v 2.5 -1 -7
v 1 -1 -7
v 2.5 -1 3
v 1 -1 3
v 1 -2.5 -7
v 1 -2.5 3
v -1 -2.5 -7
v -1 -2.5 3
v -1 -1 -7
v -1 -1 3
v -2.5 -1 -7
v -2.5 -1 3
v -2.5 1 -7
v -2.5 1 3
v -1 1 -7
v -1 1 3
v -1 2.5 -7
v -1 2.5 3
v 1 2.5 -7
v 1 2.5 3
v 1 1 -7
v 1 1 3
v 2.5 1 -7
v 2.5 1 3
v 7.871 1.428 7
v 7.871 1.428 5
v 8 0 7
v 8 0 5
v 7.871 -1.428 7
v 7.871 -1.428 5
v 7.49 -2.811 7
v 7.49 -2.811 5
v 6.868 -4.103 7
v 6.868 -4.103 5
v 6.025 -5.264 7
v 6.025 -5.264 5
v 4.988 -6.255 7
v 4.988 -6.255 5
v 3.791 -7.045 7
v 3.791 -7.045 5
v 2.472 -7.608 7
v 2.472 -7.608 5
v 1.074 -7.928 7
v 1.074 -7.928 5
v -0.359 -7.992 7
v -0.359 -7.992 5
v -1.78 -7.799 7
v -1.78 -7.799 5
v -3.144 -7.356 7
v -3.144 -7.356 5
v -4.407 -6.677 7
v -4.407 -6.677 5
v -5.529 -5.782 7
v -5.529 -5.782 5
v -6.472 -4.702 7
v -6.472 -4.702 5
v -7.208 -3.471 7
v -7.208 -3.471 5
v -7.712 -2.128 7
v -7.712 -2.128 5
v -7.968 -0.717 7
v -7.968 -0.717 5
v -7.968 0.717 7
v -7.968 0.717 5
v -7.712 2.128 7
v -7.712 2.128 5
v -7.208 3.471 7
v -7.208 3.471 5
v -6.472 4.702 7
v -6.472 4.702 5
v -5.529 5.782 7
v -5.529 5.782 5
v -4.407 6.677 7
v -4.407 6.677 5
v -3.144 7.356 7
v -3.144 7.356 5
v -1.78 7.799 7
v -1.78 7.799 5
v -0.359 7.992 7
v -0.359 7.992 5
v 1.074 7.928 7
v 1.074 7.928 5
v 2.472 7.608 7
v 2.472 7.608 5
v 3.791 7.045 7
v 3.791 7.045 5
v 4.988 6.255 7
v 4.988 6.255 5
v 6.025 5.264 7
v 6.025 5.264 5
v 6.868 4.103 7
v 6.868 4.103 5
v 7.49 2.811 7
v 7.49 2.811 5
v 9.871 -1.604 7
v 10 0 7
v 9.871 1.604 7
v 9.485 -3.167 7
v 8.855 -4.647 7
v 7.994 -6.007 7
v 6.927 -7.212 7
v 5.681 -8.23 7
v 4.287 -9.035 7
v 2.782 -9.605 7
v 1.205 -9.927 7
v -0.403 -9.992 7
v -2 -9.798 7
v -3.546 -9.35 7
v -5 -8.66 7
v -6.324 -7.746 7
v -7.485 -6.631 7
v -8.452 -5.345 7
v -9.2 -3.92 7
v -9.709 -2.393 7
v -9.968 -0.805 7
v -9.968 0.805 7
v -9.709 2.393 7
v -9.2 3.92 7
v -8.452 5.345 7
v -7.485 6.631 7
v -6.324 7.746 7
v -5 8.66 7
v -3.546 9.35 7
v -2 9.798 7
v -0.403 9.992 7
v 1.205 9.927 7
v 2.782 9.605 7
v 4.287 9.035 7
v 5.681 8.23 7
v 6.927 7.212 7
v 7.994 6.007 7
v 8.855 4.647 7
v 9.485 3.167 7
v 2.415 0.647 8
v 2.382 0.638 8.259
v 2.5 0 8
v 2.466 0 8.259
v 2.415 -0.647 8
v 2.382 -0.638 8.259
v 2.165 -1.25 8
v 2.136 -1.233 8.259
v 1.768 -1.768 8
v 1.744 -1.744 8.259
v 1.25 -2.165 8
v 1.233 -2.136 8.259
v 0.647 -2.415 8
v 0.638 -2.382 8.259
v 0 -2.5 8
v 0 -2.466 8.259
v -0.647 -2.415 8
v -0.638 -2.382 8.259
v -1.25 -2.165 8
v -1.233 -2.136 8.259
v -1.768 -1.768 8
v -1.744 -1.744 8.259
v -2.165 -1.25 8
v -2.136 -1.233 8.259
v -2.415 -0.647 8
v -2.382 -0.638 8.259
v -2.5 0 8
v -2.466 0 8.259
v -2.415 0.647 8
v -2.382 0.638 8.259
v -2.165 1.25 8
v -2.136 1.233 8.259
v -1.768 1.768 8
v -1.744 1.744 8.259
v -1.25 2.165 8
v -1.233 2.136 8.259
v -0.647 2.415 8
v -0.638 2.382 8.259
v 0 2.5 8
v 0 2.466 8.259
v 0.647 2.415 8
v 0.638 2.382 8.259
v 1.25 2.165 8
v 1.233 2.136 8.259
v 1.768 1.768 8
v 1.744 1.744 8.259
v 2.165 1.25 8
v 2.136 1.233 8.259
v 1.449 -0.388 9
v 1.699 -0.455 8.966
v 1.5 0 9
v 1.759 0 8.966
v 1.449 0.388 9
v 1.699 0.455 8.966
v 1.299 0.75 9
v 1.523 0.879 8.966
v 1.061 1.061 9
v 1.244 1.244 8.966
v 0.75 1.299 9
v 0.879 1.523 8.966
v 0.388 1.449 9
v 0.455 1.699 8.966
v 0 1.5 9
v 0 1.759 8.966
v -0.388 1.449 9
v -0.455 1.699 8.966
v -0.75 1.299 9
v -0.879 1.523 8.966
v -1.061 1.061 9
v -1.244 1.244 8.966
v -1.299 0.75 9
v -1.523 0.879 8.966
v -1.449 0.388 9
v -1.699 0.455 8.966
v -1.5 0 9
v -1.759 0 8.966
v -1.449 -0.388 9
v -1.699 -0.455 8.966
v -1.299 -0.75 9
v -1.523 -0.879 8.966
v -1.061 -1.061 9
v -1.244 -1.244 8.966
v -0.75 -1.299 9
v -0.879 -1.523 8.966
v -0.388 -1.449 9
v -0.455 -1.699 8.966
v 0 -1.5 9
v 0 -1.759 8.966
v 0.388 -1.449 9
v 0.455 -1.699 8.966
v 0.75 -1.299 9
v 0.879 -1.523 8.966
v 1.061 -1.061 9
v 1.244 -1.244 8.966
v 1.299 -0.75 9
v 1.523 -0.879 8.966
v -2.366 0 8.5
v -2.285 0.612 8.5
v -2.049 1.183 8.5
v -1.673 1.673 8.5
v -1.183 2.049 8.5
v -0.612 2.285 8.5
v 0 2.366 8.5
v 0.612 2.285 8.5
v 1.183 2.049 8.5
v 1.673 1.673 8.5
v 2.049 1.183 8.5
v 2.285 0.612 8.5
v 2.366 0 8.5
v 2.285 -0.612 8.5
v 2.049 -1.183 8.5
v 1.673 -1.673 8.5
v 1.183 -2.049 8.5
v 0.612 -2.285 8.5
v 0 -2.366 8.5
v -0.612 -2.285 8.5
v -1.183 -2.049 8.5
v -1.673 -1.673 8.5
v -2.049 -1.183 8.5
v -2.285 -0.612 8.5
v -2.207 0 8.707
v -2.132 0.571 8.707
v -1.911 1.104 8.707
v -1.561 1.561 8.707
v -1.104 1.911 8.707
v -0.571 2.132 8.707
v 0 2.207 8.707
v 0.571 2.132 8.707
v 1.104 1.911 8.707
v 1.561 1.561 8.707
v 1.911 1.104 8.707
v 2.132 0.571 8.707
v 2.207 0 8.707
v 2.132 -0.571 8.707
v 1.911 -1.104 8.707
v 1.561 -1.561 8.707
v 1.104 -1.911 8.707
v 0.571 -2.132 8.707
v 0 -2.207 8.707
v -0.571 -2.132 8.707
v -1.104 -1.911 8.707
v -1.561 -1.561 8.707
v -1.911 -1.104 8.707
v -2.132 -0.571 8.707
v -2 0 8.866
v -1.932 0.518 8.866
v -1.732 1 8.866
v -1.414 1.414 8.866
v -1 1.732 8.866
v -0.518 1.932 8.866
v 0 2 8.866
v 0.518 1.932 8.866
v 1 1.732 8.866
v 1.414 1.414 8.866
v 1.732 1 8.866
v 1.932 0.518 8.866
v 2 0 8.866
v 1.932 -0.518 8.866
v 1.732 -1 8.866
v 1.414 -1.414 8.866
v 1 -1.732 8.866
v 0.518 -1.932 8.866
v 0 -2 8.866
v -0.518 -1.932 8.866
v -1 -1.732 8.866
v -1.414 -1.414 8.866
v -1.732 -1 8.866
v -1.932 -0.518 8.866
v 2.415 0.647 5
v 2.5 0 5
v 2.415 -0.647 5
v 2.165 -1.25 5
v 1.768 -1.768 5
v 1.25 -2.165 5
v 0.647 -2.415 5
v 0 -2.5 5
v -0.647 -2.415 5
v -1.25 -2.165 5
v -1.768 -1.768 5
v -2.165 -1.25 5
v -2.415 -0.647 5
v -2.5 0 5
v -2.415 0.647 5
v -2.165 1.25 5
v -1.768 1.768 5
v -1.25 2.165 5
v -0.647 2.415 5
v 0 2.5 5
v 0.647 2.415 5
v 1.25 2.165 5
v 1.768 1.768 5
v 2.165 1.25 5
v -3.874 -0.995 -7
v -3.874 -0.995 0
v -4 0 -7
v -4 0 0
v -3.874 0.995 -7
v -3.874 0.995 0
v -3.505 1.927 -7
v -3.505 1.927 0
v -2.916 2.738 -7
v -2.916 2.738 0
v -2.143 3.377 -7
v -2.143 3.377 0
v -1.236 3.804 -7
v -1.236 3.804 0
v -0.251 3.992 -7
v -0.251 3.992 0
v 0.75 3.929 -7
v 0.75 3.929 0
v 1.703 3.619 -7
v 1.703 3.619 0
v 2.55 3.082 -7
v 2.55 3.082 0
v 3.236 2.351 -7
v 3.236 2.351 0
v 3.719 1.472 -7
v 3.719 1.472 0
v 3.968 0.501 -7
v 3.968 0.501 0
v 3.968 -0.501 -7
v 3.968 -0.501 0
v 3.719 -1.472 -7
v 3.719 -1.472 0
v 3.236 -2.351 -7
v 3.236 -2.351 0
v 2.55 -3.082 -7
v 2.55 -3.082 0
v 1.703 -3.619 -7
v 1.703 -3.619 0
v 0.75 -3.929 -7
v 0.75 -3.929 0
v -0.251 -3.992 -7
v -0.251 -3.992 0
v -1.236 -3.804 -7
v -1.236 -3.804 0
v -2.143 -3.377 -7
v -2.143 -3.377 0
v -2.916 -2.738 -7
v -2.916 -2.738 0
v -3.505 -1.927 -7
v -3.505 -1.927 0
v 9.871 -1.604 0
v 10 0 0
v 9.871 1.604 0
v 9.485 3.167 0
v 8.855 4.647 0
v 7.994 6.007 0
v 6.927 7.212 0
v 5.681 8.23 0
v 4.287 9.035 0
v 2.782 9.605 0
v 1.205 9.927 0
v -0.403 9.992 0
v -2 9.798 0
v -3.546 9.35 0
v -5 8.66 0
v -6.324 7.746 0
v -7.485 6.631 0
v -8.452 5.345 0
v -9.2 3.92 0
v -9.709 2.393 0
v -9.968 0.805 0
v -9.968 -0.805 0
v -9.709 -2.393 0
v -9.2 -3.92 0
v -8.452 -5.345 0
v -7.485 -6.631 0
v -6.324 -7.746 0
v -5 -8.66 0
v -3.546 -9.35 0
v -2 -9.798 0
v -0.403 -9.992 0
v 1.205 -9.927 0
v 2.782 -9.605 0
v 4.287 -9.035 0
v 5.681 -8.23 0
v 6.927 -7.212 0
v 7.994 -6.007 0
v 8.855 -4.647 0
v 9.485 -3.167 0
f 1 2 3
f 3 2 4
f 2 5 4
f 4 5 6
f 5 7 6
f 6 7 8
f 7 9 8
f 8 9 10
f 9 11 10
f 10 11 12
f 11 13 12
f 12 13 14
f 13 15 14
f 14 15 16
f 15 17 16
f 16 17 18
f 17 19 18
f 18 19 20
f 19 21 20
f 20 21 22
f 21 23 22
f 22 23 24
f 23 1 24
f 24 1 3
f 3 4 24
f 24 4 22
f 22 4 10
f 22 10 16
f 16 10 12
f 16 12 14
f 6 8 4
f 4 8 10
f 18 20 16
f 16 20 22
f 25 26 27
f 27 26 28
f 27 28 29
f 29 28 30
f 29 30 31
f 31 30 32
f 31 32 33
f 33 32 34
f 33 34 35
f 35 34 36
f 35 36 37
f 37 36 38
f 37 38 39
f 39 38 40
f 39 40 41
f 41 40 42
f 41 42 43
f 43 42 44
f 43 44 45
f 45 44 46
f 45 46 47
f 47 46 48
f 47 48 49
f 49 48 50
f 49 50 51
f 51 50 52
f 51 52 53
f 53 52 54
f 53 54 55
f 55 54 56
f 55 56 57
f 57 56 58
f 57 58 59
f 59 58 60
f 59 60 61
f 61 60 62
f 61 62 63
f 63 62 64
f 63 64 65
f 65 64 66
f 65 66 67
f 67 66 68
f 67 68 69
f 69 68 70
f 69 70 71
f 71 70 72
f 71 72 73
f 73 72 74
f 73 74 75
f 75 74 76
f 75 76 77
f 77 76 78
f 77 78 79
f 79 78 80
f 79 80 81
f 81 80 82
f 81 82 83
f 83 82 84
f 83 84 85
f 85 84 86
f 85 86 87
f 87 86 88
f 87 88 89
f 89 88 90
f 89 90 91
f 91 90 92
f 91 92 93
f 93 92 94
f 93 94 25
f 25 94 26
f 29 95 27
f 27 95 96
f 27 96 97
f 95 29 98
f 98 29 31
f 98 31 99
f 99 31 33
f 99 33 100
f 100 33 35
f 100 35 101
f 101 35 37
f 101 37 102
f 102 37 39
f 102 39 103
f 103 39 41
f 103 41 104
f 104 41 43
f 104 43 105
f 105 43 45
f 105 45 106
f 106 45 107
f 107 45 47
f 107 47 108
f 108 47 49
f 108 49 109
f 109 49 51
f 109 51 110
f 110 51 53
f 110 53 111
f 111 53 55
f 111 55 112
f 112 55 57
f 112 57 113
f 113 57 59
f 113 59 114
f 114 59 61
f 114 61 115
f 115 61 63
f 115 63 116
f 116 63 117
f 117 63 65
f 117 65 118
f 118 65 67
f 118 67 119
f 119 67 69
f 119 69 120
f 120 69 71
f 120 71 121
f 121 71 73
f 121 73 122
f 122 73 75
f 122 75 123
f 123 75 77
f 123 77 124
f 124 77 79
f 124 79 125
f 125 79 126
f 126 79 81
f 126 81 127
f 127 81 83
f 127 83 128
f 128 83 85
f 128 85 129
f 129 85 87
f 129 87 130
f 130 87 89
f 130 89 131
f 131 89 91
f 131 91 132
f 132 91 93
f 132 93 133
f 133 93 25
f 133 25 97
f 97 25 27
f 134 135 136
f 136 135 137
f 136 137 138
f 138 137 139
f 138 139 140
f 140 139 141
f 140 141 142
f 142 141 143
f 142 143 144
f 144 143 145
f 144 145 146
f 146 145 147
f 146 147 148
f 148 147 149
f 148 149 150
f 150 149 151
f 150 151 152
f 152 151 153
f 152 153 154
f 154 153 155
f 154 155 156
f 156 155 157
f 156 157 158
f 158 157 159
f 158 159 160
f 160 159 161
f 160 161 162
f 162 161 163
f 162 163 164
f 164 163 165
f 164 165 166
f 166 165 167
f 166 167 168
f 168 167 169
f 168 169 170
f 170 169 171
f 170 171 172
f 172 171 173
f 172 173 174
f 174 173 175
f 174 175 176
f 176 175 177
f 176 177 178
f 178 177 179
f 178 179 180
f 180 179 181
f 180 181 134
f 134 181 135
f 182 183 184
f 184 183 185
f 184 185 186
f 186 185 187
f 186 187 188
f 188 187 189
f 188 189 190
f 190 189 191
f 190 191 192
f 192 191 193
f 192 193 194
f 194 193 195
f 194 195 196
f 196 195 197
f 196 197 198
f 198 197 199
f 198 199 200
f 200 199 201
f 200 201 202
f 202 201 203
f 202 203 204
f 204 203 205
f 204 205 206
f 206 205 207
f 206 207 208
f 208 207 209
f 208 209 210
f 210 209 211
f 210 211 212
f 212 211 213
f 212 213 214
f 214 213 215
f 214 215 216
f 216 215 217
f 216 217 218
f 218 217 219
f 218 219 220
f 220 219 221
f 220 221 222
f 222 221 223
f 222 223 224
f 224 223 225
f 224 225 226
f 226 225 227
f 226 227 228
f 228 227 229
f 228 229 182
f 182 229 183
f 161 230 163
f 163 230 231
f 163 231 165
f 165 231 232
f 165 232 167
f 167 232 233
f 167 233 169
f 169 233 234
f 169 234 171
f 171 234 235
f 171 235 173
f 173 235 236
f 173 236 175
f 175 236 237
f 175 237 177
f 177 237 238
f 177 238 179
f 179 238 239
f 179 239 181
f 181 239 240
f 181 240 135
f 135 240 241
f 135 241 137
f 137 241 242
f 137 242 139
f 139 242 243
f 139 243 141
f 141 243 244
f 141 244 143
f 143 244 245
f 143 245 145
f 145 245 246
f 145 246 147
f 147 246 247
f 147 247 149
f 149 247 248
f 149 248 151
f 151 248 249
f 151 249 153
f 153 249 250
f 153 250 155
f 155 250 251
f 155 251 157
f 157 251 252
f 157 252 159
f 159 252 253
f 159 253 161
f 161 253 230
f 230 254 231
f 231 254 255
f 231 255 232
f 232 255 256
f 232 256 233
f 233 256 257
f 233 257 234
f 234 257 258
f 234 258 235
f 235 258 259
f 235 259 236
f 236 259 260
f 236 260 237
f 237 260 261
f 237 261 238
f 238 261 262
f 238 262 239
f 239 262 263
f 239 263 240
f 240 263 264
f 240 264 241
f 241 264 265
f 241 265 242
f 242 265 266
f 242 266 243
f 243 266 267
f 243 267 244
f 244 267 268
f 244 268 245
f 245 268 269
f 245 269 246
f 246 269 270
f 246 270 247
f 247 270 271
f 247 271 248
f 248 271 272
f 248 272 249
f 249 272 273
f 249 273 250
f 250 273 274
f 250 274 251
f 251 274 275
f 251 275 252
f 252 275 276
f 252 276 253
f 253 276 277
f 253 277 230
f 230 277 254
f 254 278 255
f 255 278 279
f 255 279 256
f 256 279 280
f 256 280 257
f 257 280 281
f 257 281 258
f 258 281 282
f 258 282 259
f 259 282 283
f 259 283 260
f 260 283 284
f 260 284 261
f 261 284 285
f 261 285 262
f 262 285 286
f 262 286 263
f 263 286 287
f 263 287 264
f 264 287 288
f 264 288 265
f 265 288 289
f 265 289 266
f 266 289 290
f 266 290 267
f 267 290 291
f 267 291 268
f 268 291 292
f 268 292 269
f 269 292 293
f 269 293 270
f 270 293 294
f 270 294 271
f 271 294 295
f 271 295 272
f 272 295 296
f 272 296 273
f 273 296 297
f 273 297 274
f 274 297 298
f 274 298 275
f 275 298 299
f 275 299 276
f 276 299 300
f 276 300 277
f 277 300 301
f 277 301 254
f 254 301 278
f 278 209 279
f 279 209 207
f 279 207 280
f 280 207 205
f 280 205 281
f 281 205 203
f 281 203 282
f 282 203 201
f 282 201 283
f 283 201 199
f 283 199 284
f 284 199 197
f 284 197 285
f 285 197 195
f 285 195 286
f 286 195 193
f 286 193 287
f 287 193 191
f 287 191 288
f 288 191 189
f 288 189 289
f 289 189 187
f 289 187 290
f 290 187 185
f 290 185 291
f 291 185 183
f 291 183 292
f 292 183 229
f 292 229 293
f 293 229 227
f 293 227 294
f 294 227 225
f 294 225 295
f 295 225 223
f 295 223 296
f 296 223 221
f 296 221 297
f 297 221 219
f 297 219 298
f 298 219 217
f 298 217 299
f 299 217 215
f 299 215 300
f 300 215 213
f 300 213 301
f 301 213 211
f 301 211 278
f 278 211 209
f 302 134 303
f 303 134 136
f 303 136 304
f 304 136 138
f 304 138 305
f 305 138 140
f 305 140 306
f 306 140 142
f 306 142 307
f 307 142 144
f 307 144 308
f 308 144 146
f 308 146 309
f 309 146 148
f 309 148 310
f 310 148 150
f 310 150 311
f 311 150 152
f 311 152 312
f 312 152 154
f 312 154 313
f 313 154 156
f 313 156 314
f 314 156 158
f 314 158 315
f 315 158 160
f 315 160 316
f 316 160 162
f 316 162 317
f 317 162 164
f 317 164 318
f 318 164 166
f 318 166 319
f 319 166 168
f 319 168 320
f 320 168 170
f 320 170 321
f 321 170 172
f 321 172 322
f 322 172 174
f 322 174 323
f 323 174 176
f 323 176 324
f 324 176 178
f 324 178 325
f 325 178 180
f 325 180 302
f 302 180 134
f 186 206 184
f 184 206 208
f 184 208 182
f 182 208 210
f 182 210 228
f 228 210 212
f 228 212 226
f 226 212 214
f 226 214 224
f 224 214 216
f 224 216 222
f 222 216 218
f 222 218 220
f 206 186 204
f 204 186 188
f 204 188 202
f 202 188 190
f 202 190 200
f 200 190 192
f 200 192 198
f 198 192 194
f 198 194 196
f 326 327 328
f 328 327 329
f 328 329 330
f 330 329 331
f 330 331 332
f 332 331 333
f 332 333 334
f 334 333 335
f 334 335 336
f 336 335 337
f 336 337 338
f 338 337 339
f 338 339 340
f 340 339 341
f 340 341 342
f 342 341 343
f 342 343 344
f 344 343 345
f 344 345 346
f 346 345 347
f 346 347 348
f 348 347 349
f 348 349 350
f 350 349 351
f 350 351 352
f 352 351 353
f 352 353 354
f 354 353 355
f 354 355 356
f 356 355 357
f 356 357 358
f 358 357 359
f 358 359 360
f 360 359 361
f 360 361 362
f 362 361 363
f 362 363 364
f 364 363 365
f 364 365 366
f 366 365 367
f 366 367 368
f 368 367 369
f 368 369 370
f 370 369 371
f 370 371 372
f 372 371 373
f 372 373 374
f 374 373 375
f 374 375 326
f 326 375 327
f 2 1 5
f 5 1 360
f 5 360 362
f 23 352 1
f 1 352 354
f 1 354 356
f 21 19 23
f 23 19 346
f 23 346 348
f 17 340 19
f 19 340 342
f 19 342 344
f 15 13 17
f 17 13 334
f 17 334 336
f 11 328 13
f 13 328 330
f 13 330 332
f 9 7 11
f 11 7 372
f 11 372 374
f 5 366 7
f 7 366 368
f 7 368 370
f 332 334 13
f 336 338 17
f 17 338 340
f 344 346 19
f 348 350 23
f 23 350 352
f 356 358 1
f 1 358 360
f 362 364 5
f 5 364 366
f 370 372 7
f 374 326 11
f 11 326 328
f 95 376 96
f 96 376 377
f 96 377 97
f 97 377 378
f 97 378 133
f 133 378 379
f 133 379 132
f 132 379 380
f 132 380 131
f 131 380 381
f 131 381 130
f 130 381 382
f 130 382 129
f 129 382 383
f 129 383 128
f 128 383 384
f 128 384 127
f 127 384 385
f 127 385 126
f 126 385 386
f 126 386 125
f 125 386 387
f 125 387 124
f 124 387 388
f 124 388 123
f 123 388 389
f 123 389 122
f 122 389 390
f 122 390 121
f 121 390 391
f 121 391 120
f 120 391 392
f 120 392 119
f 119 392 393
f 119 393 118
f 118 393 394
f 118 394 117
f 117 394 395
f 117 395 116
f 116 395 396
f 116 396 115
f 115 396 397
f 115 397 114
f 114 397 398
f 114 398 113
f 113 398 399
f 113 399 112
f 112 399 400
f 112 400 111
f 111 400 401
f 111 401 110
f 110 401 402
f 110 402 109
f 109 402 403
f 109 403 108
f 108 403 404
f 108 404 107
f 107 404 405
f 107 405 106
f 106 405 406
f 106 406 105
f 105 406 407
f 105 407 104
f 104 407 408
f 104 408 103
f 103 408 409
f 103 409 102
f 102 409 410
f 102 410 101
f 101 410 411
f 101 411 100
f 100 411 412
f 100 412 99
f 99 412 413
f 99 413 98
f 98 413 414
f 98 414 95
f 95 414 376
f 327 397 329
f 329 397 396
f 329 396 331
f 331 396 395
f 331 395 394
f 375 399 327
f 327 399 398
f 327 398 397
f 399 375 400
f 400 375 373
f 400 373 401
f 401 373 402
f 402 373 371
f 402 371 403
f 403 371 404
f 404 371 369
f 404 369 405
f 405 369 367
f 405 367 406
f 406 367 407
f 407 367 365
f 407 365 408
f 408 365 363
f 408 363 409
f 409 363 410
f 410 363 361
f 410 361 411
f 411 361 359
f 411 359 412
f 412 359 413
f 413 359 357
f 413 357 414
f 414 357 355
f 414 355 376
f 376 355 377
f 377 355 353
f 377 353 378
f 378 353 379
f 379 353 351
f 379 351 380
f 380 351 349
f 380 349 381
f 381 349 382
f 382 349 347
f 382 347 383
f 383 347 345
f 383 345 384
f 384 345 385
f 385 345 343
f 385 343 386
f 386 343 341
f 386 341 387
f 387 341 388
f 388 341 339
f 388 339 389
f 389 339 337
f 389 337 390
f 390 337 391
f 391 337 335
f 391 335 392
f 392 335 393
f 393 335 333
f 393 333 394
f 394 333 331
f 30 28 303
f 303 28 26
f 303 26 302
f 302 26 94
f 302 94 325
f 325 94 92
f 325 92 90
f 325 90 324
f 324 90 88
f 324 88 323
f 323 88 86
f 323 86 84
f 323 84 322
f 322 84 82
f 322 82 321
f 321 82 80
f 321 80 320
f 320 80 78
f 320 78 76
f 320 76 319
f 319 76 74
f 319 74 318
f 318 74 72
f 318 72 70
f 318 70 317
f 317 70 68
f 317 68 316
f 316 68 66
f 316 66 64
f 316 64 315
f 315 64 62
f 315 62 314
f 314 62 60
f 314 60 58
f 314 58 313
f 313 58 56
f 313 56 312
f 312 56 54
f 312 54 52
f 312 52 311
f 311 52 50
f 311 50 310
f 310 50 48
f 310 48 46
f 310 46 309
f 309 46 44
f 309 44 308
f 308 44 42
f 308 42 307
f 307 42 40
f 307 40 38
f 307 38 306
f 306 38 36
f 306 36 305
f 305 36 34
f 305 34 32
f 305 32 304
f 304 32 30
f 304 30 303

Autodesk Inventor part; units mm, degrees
ref_plane "YZ Plane" through (0, 0, 0) normal (1, 0, 0) x (0, 1, 0)
ref_plane "XZ Plane" through (0, 0, 0) normal (0, 1, 0) x (-1, 0, 0)
ref_plane "XY Plane" through (0, 0, 0) normal (0, 0, 1) x (1, 0, 0)
sketch "Sketch1" plane through (0, 0, 0) normal (0, 0, 1) x (1, 0, 0)
  circle A0 centre (0, 0) radius 10
  dimension "d0" = 20
extrude "Extrusion1" add sketch "Sketch1" along normal blind 5
sketch "Sketch2" plane through (0, 0, 0) normal (0, 0, -1) x (-1, 0, 0)
  circle A0 centre (0, 0) radius 4
  dimension "d3" = 8
extrude "Extrusion2" add sketch "Sketch2" along normal blind 7
sketch "Sketch3" plane through (0, 0, 5) normal (0, 0, 1) x (1, 0, 0)
  circle A0 centre (0, 0) radius 2.5
  dimension "d6" = 5
extrude "Extrusion3" add sketch "Sketch3" along normal blind 4
fillet "Fillet1" radius 1 1 edges at (-2.5, 0, 9)
sketch "Sketch4" plane through (0, 0, 5) normal (0, 0, 1) x (1, 0, 0)
  circle A0 centre (0, 0) radius 8
  circle A1 centre (0, 0) radius 10
  dimension "d10" = 2
  dimension "d11" = 20
extrude "Extrusion4" add sketch "Sketch4" along normal blind 2
sketch "Sketch5" plane through (0, 0, -7) normal (0, 0, -1) x (-1, 0, 0)
  line L0 (2.5, 1) -> (2.5, -1)
  line L1 (-2.5, -1) -> (-2.5, 1)
  line L2 (-1, 2.5) -> (1, 2.5)
  line L3 (1, -2.5) -> (-1, -2.5)
  line L4 (-2.5, 1) -> (-1, 1)
  line L5 (1, 1) -> (2.5, 1)
  line L6 (-1, -2.5) -> (-1, -1)
  line L7 (-1, 1) -> (-1, 2.5)
  line L8 (2.5, -1) -> (1, -1)
  line L9 (-1, -1) -> (-2.5, -1)
  line L10 (1, 2.5) -> (1, 1)
  line L11 (1, -1) -> (1, -2.5)
  point P0 (0, 0)
  dimension "d14" = 5
  dimension "d15" = 5
  dimension "d16" = 2
  dimension "d17" = 2
  dimension "d20" = 2.5
  dimension "d21" = 2.5
extrude "Extrusion5" cut sketch "Sketch5" against normal blind 10
properties part number "ArmClutchInsert"
